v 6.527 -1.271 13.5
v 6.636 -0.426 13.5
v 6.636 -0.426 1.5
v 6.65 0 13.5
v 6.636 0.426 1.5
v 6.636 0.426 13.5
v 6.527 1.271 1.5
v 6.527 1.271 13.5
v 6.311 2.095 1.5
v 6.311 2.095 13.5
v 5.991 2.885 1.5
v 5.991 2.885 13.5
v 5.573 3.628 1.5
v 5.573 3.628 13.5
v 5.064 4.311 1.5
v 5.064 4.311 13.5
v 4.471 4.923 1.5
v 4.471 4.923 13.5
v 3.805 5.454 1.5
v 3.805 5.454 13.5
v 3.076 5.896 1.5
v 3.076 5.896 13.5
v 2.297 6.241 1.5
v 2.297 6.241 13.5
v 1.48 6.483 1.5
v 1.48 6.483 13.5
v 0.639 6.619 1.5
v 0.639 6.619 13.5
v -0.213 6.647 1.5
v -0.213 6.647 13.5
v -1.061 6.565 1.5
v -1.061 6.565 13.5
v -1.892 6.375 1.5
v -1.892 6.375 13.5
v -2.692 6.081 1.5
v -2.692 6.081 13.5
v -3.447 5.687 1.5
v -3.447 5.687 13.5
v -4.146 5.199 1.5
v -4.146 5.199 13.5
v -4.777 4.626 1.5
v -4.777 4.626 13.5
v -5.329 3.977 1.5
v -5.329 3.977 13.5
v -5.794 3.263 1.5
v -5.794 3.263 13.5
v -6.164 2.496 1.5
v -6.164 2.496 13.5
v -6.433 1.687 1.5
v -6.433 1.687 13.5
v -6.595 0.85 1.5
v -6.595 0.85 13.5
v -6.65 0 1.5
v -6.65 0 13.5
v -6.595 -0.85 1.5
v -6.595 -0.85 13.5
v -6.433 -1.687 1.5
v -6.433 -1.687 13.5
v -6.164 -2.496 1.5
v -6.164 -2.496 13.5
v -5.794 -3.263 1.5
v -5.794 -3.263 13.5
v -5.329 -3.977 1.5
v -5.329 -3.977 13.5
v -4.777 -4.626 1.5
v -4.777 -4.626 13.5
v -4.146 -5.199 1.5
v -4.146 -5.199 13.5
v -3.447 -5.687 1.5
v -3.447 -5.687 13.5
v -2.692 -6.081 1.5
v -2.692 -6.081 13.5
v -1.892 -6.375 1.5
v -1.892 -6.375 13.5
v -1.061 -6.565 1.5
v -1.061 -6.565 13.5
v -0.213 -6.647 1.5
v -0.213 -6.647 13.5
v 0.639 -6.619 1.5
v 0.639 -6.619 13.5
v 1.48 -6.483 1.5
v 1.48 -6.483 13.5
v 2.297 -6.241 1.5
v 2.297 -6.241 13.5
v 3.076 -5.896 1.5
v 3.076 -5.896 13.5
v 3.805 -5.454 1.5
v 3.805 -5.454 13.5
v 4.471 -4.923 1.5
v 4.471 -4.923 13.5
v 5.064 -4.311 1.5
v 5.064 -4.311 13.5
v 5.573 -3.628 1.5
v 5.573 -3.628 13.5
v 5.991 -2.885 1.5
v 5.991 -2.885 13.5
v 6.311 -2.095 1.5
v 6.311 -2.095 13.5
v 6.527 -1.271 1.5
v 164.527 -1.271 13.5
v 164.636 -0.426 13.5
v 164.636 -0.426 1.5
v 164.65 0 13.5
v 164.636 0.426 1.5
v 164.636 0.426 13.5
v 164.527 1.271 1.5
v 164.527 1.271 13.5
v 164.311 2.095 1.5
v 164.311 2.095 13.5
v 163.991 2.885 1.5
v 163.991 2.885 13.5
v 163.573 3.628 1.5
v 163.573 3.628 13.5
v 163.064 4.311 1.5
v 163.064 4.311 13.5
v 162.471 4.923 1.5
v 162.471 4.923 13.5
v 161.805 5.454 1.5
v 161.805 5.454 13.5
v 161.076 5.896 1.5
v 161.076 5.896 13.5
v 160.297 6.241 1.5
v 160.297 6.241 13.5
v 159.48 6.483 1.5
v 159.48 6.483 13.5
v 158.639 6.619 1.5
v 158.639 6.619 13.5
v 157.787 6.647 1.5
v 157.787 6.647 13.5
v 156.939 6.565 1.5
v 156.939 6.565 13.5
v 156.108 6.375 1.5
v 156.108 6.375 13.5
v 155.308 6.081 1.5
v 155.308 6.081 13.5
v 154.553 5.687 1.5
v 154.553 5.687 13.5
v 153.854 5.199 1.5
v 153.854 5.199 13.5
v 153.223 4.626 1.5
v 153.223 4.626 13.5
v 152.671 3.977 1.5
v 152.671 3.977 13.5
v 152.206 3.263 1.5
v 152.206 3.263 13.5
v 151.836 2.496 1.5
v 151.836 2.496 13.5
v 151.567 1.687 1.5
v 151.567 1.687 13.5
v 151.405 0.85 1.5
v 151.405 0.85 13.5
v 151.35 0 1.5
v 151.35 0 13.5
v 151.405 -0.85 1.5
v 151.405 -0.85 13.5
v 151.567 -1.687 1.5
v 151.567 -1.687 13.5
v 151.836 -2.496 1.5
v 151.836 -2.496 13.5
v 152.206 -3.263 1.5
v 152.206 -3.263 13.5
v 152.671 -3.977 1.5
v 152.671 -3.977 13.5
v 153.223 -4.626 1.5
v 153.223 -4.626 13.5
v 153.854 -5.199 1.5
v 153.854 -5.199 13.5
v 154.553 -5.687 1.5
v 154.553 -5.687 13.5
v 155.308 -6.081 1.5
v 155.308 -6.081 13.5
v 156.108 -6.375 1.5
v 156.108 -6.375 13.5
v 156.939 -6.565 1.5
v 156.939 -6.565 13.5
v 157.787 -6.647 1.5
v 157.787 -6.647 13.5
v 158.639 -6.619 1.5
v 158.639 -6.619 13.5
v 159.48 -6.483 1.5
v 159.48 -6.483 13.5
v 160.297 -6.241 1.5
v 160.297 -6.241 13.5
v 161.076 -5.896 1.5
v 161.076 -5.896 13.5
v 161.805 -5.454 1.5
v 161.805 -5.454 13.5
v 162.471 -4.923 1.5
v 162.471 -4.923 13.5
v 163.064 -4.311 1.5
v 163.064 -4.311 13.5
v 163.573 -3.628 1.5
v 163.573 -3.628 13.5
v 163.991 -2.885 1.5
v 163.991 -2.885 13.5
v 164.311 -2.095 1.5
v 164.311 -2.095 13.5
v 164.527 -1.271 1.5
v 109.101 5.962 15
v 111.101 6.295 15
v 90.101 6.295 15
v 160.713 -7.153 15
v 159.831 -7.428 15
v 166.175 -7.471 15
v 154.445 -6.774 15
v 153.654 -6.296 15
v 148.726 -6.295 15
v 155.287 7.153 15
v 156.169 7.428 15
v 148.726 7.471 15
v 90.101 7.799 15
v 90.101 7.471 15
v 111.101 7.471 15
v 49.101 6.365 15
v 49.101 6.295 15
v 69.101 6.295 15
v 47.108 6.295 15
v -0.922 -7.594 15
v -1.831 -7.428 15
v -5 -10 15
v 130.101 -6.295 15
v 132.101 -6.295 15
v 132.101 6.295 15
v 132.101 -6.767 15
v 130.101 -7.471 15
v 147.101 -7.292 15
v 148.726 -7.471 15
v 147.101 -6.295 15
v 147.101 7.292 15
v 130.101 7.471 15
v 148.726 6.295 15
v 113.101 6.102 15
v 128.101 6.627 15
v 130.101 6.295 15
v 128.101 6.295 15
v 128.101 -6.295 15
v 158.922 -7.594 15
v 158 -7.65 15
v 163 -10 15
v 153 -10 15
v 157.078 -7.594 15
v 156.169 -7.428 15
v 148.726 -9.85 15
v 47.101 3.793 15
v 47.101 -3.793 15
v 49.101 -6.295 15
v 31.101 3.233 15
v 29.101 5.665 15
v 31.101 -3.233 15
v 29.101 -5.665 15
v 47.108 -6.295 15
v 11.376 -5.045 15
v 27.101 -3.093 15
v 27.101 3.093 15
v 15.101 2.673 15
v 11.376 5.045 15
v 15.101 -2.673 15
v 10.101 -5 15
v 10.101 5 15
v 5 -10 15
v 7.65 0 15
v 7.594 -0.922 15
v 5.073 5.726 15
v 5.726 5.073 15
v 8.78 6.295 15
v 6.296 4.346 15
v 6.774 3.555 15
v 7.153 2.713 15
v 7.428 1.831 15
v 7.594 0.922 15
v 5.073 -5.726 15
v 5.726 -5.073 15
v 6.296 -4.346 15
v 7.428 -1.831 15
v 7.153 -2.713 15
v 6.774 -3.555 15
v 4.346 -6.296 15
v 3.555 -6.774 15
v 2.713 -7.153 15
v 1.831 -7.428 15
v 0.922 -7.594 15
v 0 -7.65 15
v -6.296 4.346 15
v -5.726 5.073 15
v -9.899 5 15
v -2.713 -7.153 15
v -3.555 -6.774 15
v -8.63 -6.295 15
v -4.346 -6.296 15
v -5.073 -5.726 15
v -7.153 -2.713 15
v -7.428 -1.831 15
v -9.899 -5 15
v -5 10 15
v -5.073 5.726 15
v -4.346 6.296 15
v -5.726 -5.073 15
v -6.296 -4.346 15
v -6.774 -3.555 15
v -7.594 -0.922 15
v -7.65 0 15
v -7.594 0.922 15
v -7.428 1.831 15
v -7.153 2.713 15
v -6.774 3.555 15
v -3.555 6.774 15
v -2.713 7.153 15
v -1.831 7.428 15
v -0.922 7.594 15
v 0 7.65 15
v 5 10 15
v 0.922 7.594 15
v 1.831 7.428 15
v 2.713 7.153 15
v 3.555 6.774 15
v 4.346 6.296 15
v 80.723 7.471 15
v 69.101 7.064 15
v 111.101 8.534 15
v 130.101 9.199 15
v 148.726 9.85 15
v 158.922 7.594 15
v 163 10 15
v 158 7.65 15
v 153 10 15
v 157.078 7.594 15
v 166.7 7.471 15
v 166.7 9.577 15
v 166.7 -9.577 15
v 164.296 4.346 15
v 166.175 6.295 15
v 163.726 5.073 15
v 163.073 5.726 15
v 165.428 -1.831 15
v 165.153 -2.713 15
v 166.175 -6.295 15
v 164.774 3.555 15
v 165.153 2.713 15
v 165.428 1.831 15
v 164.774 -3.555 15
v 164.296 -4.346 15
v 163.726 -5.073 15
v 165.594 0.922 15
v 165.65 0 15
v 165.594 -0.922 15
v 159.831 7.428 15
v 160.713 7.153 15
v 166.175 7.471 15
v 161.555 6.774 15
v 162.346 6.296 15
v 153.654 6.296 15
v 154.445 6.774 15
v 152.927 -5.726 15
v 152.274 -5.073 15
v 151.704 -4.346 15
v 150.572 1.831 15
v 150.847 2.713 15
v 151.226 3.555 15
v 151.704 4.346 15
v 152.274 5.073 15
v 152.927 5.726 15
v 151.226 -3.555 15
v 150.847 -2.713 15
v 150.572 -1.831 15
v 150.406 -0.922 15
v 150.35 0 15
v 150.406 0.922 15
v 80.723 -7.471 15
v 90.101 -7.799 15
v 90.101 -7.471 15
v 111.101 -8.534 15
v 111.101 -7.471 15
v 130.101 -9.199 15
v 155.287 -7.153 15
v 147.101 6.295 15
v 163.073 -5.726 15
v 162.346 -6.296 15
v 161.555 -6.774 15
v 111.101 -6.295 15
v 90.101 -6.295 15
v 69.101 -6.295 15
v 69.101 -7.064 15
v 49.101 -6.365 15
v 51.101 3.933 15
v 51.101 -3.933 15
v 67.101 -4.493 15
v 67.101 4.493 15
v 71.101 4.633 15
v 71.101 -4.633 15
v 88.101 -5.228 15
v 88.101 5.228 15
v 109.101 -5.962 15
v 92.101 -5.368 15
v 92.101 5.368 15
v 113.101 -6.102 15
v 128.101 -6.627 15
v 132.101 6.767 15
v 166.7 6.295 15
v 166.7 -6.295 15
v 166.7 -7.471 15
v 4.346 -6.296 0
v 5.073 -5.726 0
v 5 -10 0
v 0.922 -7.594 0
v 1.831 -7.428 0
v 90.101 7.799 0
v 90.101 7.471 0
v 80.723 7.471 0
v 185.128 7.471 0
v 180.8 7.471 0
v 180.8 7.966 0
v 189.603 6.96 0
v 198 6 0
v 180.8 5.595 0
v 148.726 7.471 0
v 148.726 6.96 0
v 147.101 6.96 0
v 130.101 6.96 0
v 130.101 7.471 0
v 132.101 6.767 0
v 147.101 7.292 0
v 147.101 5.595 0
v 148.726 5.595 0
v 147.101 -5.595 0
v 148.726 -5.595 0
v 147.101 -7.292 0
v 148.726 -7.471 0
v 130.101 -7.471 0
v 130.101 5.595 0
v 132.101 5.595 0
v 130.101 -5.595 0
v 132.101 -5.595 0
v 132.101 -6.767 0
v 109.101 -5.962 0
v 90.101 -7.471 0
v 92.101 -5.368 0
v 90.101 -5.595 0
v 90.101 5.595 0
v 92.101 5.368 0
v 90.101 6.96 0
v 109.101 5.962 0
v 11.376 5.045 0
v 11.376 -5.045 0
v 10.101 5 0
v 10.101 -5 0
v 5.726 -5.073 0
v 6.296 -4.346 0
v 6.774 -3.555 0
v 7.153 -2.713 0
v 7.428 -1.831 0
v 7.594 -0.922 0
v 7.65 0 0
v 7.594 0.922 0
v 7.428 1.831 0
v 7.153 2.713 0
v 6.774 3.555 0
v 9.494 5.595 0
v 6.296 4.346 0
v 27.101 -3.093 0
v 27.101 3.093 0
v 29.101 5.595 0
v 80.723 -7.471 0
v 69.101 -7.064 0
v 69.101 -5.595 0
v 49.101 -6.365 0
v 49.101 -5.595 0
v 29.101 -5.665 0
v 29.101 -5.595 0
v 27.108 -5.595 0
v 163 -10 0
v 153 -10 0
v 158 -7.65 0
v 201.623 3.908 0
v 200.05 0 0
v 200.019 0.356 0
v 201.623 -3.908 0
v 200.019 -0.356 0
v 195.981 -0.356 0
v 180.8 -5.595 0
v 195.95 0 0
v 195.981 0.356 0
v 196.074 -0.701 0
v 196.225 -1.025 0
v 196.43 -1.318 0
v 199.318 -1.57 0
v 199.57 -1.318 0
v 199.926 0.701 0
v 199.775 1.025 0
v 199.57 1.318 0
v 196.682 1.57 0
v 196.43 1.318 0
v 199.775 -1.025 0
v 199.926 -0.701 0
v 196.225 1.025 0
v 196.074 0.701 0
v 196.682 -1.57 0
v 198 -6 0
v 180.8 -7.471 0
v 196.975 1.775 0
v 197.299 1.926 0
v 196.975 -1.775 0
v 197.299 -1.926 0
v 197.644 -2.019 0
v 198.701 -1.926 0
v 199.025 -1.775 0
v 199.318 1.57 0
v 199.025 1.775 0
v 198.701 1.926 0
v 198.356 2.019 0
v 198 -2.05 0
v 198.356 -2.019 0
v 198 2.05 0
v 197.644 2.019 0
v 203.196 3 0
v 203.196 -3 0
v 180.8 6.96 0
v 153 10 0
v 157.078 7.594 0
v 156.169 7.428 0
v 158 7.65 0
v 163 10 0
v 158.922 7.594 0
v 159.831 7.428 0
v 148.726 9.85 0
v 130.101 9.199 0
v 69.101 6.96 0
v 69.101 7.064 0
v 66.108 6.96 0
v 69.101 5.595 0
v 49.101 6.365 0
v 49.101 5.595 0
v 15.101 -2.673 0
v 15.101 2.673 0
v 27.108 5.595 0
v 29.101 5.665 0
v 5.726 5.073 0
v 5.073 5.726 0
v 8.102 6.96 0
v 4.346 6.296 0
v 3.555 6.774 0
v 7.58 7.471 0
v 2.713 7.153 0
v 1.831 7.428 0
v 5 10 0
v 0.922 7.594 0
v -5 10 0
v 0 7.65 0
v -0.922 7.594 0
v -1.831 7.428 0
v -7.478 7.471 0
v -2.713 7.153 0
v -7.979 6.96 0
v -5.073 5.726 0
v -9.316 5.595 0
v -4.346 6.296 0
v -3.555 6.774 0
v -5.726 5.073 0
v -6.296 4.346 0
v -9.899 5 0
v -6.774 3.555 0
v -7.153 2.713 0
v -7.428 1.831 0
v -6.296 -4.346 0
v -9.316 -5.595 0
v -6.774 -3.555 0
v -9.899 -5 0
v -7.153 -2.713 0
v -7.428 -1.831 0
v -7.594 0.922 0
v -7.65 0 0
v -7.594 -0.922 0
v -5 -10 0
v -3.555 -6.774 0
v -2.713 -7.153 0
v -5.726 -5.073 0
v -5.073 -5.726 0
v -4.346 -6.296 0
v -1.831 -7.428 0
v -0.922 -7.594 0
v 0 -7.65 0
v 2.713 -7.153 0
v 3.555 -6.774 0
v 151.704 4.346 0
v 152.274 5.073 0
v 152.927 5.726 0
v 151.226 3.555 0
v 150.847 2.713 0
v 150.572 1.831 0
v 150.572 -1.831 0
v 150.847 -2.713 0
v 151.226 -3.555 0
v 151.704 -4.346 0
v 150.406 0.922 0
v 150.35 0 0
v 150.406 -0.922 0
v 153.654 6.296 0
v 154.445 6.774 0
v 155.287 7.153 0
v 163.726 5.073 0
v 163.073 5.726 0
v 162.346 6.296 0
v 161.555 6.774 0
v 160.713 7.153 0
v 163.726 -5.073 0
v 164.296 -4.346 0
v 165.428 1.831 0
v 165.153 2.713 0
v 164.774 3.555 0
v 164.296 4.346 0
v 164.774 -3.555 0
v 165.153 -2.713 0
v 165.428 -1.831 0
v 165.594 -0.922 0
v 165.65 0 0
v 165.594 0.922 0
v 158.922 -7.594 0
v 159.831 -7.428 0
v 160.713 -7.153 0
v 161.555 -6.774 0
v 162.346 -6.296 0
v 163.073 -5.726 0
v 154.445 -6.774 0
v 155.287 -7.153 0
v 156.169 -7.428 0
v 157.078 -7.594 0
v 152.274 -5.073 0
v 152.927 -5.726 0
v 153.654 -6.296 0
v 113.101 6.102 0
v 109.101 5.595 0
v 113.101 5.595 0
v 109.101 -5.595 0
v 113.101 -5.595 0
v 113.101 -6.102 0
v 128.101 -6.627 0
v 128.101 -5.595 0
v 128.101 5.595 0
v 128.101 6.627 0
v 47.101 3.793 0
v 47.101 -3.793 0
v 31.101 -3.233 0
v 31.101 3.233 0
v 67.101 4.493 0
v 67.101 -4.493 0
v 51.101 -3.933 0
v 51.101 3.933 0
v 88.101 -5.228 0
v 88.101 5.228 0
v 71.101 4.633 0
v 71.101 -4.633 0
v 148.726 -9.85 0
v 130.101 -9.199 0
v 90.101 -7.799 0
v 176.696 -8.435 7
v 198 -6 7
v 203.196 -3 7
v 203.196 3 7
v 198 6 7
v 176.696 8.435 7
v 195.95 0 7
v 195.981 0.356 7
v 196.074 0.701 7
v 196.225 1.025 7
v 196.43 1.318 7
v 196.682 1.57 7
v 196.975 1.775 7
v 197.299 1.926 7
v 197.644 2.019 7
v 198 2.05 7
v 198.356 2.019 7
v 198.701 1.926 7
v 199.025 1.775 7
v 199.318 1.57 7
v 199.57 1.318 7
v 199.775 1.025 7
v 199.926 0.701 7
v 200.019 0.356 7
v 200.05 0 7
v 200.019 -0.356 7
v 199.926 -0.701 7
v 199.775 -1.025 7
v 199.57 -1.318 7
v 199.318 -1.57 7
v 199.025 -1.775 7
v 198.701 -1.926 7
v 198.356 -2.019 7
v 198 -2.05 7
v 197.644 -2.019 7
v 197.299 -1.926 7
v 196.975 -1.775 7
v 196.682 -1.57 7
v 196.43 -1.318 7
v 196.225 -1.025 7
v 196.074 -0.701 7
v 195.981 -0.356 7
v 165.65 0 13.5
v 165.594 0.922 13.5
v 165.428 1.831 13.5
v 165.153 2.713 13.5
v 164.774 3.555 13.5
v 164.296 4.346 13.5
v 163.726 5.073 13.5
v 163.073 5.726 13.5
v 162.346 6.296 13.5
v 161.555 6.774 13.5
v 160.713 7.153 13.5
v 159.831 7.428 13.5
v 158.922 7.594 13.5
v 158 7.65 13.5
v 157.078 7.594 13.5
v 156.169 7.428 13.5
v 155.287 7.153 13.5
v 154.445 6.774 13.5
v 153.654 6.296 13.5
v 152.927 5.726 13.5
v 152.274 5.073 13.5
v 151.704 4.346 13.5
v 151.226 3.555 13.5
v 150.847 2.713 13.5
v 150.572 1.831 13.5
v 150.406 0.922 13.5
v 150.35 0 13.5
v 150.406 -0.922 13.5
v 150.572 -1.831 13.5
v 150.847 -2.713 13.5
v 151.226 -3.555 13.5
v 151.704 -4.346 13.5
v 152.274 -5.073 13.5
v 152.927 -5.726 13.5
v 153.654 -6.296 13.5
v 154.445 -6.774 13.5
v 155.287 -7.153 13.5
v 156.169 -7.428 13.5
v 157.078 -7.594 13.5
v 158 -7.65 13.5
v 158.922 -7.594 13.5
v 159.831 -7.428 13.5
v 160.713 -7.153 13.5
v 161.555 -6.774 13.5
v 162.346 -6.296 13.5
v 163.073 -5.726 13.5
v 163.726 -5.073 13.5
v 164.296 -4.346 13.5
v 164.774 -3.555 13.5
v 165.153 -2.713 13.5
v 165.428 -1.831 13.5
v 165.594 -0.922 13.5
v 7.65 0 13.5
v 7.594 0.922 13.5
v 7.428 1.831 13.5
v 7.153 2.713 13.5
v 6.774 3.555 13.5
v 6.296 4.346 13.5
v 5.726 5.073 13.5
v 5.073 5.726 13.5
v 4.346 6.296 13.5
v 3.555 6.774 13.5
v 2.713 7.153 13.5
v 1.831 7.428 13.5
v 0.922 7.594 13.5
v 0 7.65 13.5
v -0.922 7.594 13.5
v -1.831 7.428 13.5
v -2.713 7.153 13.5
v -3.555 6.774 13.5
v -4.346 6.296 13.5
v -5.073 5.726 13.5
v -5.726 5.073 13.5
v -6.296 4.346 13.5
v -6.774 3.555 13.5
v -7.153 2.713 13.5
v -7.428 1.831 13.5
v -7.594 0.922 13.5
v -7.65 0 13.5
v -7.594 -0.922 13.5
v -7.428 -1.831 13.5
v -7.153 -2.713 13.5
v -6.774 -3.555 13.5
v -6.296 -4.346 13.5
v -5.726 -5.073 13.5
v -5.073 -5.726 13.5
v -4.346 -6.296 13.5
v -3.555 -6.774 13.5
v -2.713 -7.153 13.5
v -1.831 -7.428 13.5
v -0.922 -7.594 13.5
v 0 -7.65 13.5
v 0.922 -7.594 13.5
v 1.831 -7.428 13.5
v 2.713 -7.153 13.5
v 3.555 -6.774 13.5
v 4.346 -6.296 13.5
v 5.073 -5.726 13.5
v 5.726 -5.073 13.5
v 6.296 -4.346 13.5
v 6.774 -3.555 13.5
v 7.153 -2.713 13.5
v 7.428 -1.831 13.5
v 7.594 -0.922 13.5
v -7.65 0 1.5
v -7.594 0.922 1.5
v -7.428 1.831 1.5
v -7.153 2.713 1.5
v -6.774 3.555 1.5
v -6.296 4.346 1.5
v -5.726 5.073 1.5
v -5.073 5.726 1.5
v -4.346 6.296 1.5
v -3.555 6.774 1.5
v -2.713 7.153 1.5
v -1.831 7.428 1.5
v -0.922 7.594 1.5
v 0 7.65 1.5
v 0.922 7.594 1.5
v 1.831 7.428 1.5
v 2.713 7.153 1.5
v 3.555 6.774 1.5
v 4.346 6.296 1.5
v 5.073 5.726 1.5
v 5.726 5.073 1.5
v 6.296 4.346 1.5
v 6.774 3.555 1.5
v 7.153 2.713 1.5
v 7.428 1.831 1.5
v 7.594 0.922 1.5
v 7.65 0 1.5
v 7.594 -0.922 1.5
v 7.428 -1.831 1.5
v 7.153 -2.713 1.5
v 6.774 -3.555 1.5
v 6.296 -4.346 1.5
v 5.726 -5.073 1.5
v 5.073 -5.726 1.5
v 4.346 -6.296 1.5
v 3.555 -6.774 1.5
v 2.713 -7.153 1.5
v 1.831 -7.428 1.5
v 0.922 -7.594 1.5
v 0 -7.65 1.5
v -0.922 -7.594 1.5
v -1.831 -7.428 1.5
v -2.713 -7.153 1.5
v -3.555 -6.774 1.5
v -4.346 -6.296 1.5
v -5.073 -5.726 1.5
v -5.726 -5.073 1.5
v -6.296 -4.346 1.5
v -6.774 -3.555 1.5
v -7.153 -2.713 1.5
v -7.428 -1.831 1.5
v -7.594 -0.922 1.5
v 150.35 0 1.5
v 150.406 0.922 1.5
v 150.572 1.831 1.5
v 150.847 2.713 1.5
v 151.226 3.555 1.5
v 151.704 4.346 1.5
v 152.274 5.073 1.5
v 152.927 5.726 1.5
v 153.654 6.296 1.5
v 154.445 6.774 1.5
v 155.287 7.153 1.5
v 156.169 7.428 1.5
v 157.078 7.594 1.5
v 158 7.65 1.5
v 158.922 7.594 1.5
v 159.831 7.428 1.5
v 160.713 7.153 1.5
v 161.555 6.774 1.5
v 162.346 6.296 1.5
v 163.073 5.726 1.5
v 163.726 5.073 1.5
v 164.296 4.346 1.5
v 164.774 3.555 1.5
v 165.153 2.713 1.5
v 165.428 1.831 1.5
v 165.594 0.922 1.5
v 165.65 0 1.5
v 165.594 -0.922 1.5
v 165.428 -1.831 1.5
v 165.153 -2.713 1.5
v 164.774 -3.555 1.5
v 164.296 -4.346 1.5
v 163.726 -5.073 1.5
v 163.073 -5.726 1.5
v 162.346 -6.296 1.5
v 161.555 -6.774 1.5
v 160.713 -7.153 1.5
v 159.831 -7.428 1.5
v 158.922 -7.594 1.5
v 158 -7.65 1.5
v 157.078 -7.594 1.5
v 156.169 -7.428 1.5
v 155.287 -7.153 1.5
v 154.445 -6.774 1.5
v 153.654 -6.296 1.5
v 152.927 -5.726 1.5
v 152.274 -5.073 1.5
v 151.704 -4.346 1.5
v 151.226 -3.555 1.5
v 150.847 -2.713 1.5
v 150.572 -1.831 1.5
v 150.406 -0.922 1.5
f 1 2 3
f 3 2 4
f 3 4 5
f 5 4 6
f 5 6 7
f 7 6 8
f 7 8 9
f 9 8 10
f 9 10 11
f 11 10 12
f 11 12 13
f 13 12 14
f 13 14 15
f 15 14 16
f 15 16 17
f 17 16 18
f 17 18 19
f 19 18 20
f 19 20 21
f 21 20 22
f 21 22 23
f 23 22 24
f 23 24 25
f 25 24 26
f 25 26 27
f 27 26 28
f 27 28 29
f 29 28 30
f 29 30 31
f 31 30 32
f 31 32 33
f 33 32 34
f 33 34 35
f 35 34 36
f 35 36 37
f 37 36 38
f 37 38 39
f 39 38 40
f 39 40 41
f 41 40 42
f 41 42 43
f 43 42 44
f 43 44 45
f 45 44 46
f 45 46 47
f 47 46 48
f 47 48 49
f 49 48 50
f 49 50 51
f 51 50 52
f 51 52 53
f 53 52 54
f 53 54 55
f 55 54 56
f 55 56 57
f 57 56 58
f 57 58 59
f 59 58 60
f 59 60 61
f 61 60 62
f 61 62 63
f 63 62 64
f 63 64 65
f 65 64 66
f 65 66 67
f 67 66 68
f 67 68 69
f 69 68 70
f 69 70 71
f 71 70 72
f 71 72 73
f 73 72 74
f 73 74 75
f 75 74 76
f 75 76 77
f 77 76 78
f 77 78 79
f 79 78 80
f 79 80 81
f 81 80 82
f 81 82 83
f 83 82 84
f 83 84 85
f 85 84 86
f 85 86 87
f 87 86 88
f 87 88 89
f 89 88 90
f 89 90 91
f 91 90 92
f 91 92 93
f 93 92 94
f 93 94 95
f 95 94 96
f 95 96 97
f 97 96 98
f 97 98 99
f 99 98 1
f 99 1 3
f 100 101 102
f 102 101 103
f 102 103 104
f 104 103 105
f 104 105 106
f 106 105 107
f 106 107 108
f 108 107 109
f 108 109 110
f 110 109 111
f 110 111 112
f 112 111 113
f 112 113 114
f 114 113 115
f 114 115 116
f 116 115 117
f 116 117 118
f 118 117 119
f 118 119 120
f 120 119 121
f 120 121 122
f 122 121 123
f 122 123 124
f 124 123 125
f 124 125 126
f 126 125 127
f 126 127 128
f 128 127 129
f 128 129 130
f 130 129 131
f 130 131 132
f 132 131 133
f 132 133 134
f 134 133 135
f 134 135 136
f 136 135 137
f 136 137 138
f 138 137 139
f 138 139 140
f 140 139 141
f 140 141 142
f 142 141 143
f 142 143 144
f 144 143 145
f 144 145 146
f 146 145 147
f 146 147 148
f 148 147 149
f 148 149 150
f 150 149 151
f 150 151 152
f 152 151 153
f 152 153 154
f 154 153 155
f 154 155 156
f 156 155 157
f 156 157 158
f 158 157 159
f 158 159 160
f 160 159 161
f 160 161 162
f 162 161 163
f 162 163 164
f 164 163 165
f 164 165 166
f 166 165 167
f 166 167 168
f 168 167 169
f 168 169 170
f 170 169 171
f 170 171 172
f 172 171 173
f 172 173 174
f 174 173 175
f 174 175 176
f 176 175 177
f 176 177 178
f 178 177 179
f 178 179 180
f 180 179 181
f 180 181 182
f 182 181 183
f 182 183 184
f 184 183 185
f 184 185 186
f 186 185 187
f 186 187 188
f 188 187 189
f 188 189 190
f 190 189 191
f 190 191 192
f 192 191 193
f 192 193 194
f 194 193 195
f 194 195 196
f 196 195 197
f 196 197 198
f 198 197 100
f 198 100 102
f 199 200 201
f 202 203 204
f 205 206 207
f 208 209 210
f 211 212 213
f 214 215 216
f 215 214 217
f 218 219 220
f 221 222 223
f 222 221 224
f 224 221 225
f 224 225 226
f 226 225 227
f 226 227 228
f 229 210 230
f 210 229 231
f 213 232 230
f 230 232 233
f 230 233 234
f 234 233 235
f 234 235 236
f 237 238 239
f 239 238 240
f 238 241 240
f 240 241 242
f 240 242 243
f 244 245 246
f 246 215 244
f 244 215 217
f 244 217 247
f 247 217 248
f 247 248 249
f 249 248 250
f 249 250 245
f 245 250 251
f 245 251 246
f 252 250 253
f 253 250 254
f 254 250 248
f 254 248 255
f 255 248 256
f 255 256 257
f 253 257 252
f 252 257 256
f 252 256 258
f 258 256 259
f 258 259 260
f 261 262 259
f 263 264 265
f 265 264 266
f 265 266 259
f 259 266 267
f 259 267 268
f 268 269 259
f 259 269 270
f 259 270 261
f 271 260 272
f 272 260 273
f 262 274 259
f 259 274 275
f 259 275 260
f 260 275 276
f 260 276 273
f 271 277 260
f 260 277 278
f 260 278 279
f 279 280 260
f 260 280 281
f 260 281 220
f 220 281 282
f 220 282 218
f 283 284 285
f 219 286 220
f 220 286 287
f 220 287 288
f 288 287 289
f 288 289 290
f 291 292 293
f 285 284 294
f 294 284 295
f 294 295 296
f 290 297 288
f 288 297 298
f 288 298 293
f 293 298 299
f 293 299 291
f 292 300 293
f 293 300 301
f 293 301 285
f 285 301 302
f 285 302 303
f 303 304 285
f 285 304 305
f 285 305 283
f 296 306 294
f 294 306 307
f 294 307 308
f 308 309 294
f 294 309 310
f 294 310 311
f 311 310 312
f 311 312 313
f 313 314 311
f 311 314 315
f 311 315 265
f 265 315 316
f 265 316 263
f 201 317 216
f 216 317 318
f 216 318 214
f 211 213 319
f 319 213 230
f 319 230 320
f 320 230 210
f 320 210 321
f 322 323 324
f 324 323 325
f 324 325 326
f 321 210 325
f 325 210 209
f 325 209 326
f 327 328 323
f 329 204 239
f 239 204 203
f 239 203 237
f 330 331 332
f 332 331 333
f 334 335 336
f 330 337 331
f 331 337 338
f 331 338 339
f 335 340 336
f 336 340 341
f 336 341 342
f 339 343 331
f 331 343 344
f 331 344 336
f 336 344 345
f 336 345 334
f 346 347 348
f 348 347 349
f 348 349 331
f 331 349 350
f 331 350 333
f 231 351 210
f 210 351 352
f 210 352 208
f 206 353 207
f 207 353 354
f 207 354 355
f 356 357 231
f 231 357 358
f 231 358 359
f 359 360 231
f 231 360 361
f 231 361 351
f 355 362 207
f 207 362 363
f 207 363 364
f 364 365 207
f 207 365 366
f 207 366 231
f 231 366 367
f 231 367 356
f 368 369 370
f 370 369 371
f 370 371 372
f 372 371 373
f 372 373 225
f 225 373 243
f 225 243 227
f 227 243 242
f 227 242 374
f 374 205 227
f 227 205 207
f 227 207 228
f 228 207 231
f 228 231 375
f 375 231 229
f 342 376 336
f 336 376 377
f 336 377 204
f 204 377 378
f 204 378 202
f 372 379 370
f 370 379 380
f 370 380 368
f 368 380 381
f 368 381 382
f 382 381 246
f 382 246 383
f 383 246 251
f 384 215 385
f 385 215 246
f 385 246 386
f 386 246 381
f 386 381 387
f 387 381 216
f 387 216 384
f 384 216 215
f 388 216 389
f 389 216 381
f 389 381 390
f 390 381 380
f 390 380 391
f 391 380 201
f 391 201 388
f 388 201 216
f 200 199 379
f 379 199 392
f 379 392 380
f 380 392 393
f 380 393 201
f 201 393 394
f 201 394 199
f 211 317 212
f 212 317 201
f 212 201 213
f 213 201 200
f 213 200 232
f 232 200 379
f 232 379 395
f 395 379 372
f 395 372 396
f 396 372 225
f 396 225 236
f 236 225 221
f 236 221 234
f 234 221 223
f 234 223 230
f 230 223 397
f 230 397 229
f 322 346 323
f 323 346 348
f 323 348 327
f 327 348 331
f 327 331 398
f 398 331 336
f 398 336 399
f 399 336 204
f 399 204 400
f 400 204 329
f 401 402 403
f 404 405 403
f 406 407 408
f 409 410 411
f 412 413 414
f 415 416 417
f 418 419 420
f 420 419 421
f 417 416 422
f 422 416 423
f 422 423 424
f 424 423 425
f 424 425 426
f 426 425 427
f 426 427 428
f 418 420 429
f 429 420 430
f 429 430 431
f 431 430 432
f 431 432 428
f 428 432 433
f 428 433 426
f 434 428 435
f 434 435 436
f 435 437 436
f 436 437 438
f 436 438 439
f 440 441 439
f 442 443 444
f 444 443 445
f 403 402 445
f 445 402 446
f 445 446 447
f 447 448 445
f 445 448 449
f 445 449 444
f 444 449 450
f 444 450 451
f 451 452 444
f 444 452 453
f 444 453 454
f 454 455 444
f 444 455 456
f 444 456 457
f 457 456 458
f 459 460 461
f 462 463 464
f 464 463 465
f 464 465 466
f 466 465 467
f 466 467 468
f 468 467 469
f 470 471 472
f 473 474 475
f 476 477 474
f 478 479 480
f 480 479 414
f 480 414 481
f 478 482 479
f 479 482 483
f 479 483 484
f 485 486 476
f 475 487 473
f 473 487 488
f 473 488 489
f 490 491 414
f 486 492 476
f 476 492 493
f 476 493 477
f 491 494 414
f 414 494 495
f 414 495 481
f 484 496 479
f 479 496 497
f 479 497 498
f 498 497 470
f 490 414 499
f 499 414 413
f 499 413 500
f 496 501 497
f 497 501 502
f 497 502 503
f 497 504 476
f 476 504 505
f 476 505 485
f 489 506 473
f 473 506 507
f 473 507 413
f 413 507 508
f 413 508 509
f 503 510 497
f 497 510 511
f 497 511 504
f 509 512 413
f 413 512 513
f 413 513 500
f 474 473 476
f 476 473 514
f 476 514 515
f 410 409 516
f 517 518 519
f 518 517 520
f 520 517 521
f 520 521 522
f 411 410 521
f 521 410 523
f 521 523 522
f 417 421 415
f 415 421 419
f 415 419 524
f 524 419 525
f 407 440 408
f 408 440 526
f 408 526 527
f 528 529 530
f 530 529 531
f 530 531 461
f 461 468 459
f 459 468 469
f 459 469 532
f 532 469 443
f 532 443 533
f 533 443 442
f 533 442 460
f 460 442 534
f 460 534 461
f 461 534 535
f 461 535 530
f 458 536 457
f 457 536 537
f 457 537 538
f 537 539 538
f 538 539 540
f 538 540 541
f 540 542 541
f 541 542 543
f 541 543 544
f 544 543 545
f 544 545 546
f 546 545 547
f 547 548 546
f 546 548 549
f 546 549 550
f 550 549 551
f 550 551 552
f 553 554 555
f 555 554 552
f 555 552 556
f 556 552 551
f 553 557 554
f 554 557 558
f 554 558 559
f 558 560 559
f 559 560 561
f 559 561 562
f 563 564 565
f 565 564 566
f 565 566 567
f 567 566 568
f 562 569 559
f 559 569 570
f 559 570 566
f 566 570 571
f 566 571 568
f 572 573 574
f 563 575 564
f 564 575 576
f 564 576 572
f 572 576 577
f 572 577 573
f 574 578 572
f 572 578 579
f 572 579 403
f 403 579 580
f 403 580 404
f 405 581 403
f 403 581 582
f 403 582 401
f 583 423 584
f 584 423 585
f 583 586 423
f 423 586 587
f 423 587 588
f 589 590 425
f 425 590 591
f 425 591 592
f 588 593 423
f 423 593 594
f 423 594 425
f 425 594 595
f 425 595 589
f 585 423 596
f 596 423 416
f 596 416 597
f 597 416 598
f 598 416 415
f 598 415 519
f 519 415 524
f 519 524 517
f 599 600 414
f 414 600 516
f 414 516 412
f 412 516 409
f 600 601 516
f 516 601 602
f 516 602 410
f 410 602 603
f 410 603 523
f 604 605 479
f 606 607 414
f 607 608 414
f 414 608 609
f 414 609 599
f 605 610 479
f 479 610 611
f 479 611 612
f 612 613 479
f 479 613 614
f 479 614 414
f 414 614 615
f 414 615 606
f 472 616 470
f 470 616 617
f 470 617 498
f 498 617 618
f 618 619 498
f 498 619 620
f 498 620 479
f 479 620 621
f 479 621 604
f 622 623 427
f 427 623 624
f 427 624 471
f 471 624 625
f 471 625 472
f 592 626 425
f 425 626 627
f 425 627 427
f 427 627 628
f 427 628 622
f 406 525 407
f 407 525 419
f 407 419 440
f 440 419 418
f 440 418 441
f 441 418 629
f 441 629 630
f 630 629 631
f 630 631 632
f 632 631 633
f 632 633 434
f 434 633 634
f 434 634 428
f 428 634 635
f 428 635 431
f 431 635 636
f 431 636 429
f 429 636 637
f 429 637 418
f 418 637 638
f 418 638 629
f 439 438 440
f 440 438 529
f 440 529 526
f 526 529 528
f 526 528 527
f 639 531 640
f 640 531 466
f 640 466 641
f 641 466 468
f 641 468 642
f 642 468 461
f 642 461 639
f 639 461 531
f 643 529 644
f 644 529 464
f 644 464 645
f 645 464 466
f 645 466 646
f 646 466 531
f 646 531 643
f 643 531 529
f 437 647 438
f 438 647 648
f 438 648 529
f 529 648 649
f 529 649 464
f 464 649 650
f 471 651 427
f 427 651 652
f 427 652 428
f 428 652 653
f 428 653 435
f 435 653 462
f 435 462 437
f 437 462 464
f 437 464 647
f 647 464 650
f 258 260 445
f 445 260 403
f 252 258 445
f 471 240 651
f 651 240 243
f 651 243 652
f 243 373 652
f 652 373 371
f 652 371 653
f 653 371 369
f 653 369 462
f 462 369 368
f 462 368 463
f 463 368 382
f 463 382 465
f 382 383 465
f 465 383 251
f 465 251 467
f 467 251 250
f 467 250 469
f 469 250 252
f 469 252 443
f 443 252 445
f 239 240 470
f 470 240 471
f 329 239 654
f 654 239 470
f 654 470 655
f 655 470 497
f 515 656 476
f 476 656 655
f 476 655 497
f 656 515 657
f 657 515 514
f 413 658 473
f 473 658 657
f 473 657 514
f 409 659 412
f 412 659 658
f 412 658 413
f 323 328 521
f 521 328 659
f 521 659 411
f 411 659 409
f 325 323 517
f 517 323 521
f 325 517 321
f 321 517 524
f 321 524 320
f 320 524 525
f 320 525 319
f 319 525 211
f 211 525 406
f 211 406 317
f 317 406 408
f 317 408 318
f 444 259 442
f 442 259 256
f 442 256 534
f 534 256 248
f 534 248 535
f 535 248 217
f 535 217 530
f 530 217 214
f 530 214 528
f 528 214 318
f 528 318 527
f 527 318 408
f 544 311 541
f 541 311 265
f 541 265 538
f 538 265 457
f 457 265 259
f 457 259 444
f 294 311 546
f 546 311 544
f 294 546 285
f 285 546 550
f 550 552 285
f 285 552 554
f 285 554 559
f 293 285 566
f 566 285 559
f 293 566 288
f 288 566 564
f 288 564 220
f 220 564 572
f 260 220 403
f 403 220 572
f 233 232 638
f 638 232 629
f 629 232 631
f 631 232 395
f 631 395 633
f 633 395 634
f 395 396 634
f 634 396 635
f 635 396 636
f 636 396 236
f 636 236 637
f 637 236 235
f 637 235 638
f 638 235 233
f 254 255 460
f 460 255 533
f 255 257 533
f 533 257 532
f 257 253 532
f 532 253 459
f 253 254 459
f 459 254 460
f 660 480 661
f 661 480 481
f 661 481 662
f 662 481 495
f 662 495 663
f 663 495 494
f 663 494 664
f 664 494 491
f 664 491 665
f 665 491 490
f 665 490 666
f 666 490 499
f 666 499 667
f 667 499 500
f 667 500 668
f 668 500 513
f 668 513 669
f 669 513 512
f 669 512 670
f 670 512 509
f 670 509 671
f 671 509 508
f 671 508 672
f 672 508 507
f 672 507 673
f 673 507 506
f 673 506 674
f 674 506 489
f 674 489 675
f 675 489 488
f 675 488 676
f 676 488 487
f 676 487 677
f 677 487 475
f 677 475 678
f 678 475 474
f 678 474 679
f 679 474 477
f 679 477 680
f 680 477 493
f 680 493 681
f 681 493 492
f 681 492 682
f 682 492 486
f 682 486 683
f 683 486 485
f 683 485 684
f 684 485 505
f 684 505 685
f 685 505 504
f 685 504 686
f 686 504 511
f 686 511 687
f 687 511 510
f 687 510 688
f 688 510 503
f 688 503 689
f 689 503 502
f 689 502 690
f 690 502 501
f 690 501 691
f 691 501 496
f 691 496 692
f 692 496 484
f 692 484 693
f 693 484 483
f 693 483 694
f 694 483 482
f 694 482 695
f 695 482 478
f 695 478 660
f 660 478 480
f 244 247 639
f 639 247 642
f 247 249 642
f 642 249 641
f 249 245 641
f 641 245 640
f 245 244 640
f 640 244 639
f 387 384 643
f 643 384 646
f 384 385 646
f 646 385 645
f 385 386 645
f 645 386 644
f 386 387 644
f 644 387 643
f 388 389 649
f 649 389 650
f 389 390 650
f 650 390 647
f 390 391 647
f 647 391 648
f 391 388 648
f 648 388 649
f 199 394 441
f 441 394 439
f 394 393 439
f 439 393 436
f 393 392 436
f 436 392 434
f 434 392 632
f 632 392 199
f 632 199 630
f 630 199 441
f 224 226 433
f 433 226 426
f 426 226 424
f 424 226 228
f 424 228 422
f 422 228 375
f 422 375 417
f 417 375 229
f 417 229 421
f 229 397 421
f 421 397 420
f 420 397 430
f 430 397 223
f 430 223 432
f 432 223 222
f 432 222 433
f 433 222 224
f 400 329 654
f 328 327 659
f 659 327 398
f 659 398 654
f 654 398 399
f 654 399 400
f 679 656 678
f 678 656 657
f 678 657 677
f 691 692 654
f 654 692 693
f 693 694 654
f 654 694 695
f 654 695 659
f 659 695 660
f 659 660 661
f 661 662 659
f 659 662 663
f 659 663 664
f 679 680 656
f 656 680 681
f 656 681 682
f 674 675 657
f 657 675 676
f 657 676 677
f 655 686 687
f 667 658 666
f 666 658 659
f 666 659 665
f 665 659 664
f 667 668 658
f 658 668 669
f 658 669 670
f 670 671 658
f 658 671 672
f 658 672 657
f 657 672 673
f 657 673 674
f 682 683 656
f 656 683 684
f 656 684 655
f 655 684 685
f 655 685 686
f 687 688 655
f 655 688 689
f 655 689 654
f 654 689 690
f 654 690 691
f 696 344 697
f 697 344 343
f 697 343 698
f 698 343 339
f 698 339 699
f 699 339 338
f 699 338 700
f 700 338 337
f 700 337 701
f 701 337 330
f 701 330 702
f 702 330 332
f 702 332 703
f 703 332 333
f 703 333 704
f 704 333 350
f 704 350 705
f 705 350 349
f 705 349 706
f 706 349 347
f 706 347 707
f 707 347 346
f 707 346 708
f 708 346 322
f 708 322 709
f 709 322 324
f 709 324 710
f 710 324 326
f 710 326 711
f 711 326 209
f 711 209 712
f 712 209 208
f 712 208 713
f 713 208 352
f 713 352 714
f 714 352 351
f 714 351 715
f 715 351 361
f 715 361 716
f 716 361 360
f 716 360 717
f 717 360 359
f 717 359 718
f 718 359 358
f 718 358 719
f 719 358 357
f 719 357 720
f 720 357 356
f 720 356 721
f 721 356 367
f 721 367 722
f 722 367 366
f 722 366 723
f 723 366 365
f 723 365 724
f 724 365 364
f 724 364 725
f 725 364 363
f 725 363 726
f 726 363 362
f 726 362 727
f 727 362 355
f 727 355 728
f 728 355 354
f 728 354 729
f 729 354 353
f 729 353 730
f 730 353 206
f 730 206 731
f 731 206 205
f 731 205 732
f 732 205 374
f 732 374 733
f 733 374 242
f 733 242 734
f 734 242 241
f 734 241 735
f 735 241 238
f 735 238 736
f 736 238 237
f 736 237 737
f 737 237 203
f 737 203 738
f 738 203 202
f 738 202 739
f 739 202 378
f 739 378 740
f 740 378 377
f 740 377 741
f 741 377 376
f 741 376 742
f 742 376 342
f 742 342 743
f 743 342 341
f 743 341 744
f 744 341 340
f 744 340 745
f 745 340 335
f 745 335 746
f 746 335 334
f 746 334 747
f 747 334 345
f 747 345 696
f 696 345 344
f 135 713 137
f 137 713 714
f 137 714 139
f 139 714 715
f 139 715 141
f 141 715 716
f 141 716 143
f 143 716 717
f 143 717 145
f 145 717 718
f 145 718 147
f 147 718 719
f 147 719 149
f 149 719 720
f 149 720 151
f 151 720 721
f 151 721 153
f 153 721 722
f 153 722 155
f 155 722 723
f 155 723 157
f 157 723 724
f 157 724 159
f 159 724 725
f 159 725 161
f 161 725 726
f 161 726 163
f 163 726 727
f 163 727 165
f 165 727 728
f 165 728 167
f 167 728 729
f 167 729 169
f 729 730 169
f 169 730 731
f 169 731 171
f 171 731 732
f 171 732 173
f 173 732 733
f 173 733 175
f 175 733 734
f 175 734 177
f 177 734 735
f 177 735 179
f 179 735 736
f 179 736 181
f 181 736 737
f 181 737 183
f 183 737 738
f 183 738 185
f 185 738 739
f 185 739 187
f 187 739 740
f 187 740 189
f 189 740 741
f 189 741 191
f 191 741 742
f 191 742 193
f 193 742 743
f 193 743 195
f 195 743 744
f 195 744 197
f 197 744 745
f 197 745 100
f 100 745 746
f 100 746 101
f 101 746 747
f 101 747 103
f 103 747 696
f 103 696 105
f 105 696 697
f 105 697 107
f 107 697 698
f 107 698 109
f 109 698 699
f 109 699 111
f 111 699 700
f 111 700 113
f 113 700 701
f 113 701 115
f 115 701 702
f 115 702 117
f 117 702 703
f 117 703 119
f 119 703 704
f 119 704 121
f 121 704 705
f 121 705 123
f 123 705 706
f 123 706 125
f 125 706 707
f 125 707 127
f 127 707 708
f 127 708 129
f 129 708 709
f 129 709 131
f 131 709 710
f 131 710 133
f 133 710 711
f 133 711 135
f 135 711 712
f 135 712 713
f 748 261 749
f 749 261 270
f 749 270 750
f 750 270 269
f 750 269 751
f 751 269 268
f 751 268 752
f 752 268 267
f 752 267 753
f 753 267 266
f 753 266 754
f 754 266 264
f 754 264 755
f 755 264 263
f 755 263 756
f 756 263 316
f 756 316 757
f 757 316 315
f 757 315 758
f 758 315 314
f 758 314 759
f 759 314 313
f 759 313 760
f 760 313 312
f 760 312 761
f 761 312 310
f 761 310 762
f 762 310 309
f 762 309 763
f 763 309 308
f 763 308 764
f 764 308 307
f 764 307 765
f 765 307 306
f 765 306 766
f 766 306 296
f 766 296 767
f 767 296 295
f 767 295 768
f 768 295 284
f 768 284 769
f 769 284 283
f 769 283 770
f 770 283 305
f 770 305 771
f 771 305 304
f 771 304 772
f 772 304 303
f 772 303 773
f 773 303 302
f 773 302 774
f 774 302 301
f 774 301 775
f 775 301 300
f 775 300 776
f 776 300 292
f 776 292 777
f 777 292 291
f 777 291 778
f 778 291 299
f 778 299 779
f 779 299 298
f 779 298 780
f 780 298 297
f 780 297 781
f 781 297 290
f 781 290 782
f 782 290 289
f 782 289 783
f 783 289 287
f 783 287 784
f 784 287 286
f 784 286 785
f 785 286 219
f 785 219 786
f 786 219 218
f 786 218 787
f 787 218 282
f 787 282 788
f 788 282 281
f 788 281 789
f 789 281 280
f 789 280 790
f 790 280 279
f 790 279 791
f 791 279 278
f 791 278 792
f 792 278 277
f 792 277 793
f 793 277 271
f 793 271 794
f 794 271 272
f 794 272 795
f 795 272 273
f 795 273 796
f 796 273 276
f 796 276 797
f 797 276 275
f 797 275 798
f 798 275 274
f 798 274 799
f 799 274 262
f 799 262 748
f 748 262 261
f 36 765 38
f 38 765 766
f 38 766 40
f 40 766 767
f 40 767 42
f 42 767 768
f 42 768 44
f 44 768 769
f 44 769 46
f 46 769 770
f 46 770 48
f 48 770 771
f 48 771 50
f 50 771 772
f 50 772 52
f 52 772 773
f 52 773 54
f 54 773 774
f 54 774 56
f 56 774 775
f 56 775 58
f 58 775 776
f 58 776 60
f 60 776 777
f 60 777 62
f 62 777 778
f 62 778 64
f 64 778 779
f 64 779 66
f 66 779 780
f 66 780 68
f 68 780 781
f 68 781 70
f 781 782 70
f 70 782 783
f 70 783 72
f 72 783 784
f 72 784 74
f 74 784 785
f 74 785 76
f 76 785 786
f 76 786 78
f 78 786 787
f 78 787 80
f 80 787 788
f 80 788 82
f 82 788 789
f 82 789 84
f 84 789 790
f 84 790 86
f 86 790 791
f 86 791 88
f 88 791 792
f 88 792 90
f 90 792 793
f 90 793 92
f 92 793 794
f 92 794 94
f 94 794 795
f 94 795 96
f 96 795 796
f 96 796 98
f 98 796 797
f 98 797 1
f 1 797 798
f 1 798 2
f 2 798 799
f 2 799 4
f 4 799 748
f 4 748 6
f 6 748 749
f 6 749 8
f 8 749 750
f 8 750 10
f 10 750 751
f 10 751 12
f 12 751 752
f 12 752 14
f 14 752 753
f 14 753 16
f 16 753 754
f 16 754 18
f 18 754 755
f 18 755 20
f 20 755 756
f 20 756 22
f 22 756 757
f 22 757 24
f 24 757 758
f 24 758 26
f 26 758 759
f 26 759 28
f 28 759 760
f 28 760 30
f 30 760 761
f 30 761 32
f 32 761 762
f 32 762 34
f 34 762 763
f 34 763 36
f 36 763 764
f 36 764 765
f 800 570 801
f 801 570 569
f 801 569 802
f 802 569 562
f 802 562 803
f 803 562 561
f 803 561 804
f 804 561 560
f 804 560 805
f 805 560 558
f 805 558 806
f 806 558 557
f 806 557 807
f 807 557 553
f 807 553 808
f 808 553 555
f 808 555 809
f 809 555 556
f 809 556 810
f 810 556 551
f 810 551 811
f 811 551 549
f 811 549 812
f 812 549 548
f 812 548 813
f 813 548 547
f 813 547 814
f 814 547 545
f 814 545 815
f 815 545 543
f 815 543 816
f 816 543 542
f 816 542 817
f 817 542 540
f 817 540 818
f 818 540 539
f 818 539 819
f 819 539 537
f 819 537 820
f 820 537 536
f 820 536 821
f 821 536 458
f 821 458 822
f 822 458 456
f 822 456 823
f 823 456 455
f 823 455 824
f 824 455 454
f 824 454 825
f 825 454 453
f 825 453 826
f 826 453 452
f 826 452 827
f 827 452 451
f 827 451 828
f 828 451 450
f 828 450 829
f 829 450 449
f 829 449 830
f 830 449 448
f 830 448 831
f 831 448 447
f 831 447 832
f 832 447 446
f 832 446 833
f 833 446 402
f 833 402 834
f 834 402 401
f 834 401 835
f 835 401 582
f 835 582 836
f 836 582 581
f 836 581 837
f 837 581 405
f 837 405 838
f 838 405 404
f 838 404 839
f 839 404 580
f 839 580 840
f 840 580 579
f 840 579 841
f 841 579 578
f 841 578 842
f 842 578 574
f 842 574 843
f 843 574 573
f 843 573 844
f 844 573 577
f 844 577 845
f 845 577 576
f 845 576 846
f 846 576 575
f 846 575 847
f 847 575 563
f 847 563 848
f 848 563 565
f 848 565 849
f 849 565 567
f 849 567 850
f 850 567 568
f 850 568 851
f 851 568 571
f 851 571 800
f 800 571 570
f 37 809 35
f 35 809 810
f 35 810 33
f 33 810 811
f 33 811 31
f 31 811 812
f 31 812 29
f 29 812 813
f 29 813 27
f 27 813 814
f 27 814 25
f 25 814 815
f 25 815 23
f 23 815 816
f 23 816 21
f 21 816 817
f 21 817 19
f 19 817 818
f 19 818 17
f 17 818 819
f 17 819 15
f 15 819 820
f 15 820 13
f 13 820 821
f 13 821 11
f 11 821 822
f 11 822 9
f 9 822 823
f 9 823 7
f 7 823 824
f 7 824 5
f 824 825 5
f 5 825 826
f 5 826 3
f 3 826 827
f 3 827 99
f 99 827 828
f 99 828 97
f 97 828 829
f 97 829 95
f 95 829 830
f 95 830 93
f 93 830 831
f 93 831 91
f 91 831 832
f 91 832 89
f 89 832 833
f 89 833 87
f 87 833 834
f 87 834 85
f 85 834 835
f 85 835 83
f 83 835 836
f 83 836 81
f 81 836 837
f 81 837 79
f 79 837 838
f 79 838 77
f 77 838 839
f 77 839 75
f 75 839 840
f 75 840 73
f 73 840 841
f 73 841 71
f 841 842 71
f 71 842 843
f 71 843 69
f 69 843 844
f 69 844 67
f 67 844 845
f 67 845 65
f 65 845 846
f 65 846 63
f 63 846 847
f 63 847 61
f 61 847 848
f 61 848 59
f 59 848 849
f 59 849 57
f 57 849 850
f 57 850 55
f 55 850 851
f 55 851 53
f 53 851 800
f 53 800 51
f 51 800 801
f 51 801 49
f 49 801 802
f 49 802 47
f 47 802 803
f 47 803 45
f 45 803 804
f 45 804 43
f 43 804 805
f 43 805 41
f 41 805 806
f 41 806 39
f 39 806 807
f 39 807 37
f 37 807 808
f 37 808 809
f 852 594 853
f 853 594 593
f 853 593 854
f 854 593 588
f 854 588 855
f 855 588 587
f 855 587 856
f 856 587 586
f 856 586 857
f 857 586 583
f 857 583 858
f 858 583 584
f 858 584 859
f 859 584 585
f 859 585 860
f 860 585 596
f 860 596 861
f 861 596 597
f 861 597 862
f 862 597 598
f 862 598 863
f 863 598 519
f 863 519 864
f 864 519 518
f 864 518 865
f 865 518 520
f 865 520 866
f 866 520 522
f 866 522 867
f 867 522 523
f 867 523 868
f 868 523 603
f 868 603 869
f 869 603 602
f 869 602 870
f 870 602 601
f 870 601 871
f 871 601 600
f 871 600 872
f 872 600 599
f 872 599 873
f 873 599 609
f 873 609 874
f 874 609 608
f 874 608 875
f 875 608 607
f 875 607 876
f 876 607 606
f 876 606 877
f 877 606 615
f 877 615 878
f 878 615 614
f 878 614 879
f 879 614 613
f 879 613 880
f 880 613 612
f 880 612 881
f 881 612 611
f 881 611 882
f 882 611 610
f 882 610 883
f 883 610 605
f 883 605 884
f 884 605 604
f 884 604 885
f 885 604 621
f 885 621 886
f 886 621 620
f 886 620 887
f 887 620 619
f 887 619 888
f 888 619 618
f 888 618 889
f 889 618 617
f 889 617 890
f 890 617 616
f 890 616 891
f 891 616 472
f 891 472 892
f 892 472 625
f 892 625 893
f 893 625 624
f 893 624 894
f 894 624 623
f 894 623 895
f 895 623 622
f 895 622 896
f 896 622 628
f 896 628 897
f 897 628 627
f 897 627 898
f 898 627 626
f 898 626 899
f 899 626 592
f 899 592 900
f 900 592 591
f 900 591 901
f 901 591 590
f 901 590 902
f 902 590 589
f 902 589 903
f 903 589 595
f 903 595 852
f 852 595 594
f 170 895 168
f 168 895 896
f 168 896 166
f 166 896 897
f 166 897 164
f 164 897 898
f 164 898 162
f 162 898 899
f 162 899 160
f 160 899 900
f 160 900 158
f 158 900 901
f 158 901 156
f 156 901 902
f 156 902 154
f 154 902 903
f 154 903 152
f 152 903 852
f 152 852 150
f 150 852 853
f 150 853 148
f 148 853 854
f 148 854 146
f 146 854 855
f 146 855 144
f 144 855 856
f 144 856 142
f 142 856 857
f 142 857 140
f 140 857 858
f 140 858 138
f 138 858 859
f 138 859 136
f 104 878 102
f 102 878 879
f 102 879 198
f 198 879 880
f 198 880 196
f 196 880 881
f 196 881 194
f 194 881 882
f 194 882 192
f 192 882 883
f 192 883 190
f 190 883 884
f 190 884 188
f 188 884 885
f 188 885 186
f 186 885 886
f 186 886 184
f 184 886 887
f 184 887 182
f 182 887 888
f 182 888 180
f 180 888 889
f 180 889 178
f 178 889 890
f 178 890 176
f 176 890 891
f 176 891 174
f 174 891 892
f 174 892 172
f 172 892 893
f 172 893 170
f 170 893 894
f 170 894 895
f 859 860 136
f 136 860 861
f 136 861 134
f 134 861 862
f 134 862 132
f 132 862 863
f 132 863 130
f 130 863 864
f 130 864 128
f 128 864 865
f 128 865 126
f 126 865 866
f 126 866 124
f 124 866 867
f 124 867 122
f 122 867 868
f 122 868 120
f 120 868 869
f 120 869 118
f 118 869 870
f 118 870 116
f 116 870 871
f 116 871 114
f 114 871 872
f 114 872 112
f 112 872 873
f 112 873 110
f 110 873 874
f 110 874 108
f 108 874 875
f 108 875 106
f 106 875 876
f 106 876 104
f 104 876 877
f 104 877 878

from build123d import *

# Parameters (mm, degrees)
SKETCH_1_R          = 6.65
SKETCH_1_R_2        = 2.05
EXTRUDE_1_DEPTH     = 15
CUT_EXTRUDE_1_DEPTH = 205.728298873
SKETCH_3_R          = 7.65
CUT_EXTRUDE_2_DEPTH = 1.5
CUT_EXTRUDE_START   = -1.5
SKETCH_4_R          = 7.65
CUT_EXTRUDE_3_DEPTH = 1.5


with BuildPart() as part:
    # 草图1 → 凸台-拉伸1 (new body)
    with BuildSketch(Plane.XY):
        Polygon((198, 6), (203.196152423, 3), (203.196152423, -3), (198, -6), (163, -10), (153, -10), (10.101020514, -5), (5, -10), (-5, -10), (-9.898979486, -5), (-9.898979486, 5), (-5, 10), (5, 10), (10.101020514, 5), (153, 10), (163, 10), align=None)
        Circle(SKETCH_1_R, mode=Mode.SUBTRACT)
        with Locations((198, 0)):
            Circle(SKETCH_1_R_2, mode=Mode.SUBTRACT)
        with Locations((158, 0)):
            Circle(SKETCH_1_R, mode=Mode.SUBTRACT)
        Polygon((15.101020514, -2.67341888), (15.101020514, 2.67341888), (27.101020514, 3.093295916), (27.101020514, -3.093295916), align=None, mode=Mode.SUBTRACT)
        Polygon((31.101020514, -3.233254928), (31.101020514, 3.233254928), (47.101020514, 3.793090977), (47.101020514, -3.793090977), align=None, mode=Mode.SUBTRACT)
        Polygon((51.101020514, -3.933049989), (51.101020514, 3.933049989), (67.101020514, 4.492886037), (67.101020514, -4.492886037), align=None, mode=Mode.SUBTRACT)
        Polygon((71.101020514, 4.632845049), (88.101020514, 5.227670851), (88.101020514, -5.227670851), (71.101020514, -4.632845049), align=None, mode=Mode.SUBTRACT)
        Polygon((109.101020514, 5.962455664), (109.101020514, -5.962455664), (92.101020514, -5.367629863), (92.101020514, 5.367629863), align=None, mode=Mode.SUBTRACT)
        Polygon((113.101020514, -6.102414676), (128.101020514, -6.627260972), (128.101020514, 6.627260972), (113.101020514, 6.102414676), align=None, mode=Mode.SUBTRACT)
        Polygon((147.101020514, -7.292066279), (147.101020514, 7.292066279), (132.101020514, 6.767219984), (132.101020514, -6.767219984), align=None, mode=Mode.SUBTRACT)
    extrude(amount=EXTRUDE_1_DEPTH)

    # 草图2 → 切除-拉伸1 (cut, through all)
    with BuildSketch(Plane.XZ.offset(10)):
        Polygon((166.7, 15), (176.696152423, 7), (203.196152423, 7), (203.196152423, 15), align=None)
    extrude(amount=-CUT_EXTRUDE_1_DEPTH, mode=Mode.SUBTRACT)

    # 草图3 → 切除-拉伸2 (cut)
    with BuildSketch(Plane.XY.offset(15)):
        Circle(SKETCH_3_R)
        with Locations((158, 0)):
            Circle(SKETCH_3_R)
    extrude(amount=-CUT_EXTRUDE_2_DEPTH, mode=Mode.SUBTRACT)

    # 草图4 → 切除-拉伸3 (cut)
    with BuildSketch(Plane(origin=(0, 0, 0), x_dir=(-1, 0, 0), z_dir=(0, 0, -1)).offset(CUT_EXTRUDE_START)):
        with Locations(Location((-158, 0, 0), (0, 0, 180))):
            Circle(SKETCH_4_R)
        with Locations(Location((0, 0, 0), (0, 0, 180))):
            Circle(SKETCH_4_R)
    extrude(amount=CUT_EXTRUDE_3_DEPTH, mode=Mode.SUBTRACT)


solid = part.part
